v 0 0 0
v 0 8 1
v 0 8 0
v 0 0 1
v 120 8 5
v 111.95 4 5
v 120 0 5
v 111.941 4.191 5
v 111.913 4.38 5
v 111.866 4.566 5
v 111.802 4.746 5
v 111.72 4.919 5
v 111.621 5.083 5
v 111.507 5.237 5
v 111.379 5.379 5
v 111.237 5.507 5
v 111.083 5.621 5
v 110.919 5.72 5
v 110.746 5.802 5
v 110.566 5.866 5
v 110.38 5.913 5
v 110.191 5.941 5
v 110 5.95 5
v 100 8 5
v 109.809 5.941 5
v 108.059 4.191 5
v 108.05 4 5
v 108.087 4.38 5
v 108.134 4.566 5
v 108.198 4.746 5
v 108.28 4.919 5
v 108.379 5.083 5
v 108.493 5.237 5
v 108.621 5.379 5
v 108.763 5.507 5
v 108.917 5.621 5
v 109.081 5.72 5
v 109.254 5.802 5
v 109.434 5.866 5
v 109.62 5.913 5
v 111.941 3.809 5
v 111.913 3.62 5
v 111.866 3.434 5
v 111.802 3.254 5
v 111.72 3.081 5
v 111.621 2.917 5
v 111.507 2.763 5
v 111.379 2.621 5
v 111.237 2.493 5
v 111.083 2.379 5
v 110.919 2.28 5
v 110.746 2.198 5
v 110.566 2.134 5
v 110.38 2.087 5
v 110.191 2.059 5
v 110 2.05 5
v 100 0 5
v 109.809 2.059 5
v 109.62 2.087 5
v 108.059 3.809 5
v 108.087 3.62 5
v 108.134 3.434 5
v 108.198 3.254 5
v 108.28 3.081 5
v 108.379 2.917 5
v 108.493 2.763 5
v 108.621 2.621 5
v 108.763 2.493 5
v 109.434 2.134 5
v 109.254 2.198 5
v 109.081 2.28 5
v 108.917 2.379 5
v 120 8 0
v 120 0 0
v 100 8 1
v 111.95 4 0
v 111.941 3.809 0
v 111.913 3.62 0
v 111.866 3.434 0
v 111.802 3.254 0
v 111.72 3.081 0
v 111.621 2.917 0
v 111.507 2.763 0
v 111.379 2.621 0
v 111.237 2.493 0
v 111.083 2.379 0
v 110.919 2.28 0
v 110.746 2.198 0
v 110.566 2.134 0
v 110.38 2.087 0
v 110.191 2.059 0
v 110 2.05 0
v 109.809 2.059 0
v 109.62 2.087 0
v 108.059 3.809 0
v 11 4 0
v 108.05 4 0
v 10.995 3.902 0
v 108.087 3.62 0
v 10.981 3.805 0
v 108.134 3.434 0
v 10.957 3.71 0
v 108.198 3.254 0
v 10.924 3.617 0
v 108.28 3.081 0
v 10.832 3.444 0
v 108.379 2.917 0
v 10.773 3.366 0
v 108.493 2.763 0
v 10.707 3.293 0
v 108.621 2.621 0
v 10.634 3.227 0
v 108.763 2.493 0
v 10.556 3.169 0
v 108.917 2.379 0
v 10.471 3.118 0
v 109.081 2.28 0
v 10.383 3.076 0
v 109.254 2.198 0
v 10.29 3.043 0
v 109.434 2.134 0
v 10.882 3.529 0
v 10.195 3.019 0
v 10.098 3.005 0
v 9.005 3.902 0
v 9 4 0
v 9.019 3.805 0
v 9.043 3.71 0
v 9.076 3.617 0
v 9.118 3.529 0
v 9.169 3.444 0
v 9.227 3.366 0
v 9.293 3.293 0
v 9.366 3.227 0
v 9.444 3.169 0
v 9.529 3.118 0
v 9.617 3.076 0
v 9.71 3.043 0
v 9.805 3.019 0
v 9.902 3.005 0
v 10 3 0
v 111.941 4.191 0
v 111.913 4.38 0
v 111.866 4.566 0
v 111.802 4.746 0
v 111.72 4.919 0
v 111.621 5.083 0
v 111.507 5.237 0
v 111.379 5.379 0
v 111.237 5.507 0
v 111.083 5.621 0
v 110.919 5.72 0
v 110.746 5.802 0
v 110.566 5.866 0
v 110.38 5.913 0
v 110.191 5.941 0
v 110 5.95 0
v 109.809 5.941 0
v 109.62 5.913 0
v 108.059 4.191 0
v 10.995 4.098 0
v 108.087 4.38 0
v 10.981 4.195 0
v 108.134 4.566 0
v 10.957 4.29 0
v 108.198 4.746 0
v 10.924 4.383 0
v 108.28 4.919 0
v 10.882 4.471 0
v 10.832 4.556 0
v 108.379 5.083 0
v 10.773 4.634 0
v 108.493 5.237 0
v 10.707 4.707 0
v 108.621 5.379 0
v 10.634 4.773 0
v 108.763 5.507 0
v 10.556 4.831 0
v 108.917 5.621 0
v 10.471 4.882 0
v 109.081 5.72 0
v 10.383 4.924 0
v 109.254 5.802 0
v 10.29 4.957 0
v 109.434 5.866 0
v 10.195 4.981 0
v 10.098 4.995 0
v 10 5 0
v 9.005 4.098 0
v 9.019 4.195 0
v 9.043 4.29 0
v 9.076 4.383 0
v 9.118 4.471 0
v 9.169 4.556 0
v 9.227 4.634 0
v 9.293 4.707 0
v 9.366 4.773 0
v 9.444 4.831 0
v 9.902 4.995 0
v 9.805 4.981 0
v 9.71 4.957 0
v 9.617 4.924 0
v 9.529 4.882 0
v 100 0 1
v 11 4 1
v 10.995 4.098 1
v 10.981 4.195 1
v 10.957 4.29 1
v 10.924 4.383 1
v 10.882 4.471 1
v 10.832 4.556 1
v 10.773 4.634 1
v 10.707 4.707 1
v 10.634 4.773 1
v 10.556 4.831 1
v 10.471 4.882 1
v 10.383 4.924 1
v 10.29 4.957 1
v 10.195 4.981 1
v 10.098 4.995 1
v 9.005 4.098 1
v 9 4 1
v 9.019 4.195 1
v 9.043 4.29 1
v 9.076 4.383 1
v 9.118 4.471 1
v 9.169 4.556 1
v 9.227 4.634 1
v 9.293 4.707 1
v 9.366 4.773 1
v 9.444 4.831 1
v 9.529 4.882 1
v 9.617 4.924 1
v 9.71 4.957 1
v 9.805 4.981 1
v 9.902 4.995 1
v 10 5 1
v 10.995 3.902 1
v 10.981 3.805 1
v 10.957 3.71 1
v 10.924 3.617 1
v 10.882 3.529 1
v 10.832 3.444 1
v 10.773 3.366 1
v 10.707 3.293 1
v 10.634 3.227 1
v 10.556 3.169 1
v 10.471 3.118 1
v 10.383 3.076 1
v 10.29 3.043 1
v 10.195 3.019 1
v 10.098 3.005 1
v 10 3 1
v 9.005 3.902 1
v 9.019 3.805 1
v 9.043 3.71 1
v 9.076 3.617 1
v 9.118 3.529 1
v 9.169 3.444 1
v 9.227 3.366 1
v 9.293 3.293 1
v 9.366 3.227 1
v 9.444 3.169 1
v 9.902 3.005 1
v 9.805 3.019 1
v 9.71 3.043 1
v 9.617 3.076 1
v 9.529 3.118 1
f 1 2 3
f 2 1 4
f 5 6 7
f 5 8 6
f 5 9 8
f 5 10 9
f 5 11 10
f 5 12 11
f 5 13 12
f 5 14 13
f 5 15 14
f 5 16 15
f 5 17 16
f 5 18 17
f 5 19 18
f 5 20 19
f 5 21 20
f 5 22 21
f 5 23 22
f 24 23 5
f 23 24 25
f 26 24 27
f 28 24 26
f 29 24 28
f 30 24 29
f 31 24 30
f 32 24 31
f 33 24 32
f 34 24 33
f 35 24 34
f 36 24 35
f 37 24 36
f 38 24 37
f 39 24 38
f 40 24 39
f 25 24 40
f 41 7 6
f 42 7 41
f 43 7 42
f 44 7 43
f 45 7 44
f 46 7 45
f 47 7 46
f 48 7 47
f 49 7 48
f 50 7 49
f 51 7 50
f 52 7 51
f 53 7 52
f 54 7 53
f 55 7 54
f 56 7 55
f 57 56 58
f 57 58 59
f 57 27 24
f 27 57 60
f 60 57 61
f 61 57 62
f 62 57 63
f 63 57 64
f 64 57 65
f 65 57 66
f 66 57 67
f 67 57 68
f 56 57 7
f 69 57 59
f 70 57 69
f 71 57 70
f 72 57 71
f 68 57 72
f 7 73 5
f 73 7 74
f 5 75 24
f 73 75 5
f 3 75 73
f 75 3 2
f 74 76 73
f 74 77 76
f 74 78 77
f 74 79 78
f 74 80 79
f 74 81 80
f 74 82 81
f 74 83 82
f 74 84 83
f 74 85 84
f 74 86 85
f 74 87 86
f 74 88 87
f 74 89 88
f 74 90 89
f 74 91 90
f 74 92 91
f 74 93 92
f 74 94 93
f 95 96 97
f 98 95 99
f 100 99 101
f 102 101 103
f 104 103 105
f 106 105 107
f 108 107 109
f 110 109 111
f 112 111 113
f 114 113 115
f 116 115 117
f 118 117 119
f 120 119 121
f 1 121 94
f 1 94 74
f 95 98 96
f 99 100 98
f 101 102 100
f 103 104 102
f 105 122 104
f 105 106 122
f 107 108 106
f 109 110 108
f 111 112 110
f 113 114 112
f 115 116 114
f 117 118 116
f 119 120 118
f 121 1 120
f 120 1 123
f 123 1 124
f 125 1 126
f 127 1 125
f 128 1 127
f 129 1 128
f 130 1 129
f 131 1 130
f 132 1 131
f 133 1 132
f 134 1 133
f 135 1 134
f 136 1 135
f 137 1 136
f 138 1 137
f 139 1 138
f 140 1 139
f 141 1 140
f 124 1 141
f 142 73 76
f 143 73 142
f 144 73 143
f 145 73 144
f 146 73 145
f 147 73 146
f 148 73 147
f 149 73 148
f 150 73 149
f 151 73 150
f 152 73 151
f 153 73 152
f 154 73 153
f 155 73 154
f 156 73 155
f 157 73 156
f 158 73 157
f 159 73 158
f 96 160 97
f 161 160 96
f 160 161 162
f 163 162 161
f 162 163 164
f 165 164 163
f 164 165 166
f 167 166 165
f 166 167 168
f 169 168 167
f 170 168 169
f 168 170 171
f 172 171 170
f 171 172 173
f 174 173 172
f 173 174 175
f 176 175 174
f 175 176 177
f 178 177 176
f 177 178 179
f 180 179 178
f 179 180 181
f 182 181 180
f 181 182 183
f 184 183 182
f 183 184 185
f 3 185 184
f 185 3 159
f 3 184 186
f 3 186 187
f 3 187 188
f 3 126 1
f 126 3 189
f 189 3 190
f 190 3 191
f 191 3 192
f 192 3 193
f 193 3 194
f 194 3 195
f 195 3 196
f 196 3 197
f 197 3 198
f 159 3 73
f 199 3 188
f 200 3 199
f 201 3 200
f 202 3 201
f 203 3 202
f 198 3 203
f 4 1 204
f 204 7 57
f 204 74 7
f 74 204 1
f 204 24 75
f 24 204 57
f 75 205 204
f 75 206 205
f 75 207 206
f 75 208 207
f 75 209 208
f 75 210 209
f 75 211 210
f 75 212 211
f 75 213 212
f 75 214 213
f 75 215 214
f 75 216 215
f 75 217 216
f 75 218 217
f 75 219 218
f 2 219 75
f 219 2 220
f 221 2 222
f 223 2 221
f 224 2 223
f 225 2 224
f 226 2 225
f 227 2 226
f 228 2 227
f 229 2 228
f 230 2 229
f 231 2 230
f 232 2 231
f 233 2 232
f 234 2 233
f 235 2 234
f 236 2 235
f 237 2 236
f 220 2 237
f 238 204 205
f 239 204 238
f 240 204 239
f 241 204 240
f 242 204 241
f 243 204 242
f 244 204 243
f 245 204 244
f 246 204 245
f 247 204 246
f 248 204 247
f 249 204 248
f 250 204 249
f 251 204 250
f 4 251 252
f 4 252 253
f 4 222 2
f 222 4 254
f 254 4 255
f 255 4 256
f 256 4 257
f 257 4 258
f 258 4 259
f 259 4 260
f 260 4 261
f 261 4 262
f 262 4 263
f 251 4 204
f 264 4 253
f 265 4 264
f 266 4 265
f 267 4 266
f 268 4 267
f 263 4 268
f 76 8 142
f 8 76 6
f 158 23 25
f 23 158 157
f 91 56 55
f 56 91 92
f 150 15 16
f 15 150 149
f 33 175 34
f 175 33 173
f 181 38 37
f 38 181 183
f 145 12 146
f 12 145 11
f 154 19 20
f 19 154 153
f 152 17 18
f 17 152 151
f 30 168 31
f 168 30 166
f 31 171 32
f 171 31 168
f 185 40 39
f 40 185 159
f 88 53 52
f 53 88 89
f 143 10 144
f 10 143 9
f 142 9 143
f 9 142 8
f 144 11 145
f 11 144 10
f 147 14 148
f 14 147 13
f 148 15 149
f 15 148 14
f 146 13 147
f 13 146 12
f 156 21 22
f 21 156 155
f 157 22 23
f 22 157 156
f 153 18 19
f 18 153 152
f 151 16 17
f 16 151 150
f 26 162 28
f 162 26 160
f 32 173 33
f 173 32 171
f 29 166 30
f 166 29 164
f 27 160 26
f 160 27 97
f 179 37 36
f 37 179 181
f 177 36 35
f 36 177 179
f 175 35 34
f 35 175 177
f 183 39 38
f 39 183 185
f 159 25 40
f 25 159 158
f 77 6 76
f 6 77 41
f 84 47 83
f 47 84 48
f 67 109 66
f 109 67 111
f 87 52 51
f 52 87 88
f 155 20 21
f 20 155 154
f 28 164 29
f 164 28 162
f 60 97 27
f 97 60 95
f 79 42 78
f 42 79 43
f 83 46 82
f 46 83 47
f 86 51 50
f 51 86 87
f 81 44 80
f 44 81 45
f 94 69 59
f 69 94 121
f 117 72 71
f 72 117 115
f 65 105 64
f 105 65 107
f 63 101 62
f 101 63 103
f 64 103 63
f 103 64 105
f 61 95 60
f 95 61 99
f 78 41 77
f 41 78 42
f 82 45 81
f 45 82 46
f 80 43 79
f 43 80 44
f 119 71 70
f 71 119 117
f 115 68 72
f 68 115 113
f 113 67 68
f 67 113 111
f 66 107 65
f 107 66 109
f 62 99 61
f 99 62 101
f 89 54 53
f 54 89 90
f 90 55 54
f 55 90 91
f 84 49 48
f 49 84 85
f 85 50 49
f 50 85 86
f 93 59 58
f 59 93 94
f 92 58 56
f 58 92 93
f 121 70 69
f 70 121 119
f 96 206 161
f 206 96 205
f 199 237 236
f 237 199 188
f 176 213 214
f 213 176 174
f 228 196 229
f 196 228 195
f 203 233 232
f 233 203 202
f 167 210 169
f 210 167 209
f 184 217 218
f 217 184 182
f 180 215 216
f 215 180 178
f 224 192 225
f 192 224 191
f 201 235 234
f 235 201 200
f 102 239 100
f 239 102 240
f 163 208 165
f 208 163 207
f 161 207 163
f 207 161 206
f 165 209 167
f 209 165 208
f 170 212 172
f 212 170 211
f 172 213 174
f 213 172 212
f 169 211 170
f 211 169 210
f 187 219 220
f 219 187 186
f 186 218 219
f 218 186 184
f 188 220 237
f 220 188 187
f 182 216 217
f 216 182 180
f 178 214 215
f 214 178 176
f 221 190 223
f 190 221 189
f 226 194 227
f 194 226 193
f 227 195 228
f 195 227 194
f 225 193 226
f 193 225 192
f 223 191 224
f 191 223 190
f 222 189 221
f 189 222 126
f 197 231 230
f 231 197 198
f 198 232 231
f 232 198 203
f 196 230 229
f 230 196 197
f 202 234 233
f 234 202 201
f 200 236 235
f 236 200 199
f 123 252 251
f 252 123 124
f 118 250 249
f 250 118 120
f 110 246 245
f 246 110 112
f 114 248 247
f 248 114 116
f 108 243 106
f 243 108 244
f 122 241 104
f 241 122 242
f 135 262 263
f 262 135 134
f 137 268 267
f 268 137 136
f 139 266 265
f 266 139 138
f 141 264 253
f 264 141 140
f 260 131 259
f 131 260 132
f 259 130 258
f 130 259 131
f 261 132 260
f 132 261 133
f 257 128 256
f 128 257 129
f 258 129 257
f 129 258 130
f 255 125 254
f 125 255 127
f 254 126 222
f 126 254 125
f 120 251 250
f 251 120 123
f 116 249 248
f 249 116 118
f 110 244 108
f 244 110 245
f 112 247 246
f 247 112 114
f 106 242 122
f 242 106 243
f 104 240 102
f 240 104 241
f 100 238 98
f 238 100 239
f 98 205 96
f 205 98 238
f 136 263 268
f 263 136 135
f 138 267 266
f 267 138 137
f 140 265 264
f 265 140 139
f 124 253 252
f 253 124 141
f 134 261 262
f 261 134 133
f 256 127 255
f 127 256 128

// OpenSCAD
$fn=64;
fudge = 0.1;

// Derived values, do not edit
nf = -fudge;
pf = fudge;
dpf = 2 * fudge;

difference() {
    cube([120, 8, 5]);
    translate([nf, nf, 1]) cube([100 + pf, 8 + dpf, 4 + pf]);
    translate([110, 4, nf]) cylinder(d = 3.9, h = 5 + dpf);
    translate([10, 4, nf]) cylinder(d = 2, h = 5 + dpf);
}
